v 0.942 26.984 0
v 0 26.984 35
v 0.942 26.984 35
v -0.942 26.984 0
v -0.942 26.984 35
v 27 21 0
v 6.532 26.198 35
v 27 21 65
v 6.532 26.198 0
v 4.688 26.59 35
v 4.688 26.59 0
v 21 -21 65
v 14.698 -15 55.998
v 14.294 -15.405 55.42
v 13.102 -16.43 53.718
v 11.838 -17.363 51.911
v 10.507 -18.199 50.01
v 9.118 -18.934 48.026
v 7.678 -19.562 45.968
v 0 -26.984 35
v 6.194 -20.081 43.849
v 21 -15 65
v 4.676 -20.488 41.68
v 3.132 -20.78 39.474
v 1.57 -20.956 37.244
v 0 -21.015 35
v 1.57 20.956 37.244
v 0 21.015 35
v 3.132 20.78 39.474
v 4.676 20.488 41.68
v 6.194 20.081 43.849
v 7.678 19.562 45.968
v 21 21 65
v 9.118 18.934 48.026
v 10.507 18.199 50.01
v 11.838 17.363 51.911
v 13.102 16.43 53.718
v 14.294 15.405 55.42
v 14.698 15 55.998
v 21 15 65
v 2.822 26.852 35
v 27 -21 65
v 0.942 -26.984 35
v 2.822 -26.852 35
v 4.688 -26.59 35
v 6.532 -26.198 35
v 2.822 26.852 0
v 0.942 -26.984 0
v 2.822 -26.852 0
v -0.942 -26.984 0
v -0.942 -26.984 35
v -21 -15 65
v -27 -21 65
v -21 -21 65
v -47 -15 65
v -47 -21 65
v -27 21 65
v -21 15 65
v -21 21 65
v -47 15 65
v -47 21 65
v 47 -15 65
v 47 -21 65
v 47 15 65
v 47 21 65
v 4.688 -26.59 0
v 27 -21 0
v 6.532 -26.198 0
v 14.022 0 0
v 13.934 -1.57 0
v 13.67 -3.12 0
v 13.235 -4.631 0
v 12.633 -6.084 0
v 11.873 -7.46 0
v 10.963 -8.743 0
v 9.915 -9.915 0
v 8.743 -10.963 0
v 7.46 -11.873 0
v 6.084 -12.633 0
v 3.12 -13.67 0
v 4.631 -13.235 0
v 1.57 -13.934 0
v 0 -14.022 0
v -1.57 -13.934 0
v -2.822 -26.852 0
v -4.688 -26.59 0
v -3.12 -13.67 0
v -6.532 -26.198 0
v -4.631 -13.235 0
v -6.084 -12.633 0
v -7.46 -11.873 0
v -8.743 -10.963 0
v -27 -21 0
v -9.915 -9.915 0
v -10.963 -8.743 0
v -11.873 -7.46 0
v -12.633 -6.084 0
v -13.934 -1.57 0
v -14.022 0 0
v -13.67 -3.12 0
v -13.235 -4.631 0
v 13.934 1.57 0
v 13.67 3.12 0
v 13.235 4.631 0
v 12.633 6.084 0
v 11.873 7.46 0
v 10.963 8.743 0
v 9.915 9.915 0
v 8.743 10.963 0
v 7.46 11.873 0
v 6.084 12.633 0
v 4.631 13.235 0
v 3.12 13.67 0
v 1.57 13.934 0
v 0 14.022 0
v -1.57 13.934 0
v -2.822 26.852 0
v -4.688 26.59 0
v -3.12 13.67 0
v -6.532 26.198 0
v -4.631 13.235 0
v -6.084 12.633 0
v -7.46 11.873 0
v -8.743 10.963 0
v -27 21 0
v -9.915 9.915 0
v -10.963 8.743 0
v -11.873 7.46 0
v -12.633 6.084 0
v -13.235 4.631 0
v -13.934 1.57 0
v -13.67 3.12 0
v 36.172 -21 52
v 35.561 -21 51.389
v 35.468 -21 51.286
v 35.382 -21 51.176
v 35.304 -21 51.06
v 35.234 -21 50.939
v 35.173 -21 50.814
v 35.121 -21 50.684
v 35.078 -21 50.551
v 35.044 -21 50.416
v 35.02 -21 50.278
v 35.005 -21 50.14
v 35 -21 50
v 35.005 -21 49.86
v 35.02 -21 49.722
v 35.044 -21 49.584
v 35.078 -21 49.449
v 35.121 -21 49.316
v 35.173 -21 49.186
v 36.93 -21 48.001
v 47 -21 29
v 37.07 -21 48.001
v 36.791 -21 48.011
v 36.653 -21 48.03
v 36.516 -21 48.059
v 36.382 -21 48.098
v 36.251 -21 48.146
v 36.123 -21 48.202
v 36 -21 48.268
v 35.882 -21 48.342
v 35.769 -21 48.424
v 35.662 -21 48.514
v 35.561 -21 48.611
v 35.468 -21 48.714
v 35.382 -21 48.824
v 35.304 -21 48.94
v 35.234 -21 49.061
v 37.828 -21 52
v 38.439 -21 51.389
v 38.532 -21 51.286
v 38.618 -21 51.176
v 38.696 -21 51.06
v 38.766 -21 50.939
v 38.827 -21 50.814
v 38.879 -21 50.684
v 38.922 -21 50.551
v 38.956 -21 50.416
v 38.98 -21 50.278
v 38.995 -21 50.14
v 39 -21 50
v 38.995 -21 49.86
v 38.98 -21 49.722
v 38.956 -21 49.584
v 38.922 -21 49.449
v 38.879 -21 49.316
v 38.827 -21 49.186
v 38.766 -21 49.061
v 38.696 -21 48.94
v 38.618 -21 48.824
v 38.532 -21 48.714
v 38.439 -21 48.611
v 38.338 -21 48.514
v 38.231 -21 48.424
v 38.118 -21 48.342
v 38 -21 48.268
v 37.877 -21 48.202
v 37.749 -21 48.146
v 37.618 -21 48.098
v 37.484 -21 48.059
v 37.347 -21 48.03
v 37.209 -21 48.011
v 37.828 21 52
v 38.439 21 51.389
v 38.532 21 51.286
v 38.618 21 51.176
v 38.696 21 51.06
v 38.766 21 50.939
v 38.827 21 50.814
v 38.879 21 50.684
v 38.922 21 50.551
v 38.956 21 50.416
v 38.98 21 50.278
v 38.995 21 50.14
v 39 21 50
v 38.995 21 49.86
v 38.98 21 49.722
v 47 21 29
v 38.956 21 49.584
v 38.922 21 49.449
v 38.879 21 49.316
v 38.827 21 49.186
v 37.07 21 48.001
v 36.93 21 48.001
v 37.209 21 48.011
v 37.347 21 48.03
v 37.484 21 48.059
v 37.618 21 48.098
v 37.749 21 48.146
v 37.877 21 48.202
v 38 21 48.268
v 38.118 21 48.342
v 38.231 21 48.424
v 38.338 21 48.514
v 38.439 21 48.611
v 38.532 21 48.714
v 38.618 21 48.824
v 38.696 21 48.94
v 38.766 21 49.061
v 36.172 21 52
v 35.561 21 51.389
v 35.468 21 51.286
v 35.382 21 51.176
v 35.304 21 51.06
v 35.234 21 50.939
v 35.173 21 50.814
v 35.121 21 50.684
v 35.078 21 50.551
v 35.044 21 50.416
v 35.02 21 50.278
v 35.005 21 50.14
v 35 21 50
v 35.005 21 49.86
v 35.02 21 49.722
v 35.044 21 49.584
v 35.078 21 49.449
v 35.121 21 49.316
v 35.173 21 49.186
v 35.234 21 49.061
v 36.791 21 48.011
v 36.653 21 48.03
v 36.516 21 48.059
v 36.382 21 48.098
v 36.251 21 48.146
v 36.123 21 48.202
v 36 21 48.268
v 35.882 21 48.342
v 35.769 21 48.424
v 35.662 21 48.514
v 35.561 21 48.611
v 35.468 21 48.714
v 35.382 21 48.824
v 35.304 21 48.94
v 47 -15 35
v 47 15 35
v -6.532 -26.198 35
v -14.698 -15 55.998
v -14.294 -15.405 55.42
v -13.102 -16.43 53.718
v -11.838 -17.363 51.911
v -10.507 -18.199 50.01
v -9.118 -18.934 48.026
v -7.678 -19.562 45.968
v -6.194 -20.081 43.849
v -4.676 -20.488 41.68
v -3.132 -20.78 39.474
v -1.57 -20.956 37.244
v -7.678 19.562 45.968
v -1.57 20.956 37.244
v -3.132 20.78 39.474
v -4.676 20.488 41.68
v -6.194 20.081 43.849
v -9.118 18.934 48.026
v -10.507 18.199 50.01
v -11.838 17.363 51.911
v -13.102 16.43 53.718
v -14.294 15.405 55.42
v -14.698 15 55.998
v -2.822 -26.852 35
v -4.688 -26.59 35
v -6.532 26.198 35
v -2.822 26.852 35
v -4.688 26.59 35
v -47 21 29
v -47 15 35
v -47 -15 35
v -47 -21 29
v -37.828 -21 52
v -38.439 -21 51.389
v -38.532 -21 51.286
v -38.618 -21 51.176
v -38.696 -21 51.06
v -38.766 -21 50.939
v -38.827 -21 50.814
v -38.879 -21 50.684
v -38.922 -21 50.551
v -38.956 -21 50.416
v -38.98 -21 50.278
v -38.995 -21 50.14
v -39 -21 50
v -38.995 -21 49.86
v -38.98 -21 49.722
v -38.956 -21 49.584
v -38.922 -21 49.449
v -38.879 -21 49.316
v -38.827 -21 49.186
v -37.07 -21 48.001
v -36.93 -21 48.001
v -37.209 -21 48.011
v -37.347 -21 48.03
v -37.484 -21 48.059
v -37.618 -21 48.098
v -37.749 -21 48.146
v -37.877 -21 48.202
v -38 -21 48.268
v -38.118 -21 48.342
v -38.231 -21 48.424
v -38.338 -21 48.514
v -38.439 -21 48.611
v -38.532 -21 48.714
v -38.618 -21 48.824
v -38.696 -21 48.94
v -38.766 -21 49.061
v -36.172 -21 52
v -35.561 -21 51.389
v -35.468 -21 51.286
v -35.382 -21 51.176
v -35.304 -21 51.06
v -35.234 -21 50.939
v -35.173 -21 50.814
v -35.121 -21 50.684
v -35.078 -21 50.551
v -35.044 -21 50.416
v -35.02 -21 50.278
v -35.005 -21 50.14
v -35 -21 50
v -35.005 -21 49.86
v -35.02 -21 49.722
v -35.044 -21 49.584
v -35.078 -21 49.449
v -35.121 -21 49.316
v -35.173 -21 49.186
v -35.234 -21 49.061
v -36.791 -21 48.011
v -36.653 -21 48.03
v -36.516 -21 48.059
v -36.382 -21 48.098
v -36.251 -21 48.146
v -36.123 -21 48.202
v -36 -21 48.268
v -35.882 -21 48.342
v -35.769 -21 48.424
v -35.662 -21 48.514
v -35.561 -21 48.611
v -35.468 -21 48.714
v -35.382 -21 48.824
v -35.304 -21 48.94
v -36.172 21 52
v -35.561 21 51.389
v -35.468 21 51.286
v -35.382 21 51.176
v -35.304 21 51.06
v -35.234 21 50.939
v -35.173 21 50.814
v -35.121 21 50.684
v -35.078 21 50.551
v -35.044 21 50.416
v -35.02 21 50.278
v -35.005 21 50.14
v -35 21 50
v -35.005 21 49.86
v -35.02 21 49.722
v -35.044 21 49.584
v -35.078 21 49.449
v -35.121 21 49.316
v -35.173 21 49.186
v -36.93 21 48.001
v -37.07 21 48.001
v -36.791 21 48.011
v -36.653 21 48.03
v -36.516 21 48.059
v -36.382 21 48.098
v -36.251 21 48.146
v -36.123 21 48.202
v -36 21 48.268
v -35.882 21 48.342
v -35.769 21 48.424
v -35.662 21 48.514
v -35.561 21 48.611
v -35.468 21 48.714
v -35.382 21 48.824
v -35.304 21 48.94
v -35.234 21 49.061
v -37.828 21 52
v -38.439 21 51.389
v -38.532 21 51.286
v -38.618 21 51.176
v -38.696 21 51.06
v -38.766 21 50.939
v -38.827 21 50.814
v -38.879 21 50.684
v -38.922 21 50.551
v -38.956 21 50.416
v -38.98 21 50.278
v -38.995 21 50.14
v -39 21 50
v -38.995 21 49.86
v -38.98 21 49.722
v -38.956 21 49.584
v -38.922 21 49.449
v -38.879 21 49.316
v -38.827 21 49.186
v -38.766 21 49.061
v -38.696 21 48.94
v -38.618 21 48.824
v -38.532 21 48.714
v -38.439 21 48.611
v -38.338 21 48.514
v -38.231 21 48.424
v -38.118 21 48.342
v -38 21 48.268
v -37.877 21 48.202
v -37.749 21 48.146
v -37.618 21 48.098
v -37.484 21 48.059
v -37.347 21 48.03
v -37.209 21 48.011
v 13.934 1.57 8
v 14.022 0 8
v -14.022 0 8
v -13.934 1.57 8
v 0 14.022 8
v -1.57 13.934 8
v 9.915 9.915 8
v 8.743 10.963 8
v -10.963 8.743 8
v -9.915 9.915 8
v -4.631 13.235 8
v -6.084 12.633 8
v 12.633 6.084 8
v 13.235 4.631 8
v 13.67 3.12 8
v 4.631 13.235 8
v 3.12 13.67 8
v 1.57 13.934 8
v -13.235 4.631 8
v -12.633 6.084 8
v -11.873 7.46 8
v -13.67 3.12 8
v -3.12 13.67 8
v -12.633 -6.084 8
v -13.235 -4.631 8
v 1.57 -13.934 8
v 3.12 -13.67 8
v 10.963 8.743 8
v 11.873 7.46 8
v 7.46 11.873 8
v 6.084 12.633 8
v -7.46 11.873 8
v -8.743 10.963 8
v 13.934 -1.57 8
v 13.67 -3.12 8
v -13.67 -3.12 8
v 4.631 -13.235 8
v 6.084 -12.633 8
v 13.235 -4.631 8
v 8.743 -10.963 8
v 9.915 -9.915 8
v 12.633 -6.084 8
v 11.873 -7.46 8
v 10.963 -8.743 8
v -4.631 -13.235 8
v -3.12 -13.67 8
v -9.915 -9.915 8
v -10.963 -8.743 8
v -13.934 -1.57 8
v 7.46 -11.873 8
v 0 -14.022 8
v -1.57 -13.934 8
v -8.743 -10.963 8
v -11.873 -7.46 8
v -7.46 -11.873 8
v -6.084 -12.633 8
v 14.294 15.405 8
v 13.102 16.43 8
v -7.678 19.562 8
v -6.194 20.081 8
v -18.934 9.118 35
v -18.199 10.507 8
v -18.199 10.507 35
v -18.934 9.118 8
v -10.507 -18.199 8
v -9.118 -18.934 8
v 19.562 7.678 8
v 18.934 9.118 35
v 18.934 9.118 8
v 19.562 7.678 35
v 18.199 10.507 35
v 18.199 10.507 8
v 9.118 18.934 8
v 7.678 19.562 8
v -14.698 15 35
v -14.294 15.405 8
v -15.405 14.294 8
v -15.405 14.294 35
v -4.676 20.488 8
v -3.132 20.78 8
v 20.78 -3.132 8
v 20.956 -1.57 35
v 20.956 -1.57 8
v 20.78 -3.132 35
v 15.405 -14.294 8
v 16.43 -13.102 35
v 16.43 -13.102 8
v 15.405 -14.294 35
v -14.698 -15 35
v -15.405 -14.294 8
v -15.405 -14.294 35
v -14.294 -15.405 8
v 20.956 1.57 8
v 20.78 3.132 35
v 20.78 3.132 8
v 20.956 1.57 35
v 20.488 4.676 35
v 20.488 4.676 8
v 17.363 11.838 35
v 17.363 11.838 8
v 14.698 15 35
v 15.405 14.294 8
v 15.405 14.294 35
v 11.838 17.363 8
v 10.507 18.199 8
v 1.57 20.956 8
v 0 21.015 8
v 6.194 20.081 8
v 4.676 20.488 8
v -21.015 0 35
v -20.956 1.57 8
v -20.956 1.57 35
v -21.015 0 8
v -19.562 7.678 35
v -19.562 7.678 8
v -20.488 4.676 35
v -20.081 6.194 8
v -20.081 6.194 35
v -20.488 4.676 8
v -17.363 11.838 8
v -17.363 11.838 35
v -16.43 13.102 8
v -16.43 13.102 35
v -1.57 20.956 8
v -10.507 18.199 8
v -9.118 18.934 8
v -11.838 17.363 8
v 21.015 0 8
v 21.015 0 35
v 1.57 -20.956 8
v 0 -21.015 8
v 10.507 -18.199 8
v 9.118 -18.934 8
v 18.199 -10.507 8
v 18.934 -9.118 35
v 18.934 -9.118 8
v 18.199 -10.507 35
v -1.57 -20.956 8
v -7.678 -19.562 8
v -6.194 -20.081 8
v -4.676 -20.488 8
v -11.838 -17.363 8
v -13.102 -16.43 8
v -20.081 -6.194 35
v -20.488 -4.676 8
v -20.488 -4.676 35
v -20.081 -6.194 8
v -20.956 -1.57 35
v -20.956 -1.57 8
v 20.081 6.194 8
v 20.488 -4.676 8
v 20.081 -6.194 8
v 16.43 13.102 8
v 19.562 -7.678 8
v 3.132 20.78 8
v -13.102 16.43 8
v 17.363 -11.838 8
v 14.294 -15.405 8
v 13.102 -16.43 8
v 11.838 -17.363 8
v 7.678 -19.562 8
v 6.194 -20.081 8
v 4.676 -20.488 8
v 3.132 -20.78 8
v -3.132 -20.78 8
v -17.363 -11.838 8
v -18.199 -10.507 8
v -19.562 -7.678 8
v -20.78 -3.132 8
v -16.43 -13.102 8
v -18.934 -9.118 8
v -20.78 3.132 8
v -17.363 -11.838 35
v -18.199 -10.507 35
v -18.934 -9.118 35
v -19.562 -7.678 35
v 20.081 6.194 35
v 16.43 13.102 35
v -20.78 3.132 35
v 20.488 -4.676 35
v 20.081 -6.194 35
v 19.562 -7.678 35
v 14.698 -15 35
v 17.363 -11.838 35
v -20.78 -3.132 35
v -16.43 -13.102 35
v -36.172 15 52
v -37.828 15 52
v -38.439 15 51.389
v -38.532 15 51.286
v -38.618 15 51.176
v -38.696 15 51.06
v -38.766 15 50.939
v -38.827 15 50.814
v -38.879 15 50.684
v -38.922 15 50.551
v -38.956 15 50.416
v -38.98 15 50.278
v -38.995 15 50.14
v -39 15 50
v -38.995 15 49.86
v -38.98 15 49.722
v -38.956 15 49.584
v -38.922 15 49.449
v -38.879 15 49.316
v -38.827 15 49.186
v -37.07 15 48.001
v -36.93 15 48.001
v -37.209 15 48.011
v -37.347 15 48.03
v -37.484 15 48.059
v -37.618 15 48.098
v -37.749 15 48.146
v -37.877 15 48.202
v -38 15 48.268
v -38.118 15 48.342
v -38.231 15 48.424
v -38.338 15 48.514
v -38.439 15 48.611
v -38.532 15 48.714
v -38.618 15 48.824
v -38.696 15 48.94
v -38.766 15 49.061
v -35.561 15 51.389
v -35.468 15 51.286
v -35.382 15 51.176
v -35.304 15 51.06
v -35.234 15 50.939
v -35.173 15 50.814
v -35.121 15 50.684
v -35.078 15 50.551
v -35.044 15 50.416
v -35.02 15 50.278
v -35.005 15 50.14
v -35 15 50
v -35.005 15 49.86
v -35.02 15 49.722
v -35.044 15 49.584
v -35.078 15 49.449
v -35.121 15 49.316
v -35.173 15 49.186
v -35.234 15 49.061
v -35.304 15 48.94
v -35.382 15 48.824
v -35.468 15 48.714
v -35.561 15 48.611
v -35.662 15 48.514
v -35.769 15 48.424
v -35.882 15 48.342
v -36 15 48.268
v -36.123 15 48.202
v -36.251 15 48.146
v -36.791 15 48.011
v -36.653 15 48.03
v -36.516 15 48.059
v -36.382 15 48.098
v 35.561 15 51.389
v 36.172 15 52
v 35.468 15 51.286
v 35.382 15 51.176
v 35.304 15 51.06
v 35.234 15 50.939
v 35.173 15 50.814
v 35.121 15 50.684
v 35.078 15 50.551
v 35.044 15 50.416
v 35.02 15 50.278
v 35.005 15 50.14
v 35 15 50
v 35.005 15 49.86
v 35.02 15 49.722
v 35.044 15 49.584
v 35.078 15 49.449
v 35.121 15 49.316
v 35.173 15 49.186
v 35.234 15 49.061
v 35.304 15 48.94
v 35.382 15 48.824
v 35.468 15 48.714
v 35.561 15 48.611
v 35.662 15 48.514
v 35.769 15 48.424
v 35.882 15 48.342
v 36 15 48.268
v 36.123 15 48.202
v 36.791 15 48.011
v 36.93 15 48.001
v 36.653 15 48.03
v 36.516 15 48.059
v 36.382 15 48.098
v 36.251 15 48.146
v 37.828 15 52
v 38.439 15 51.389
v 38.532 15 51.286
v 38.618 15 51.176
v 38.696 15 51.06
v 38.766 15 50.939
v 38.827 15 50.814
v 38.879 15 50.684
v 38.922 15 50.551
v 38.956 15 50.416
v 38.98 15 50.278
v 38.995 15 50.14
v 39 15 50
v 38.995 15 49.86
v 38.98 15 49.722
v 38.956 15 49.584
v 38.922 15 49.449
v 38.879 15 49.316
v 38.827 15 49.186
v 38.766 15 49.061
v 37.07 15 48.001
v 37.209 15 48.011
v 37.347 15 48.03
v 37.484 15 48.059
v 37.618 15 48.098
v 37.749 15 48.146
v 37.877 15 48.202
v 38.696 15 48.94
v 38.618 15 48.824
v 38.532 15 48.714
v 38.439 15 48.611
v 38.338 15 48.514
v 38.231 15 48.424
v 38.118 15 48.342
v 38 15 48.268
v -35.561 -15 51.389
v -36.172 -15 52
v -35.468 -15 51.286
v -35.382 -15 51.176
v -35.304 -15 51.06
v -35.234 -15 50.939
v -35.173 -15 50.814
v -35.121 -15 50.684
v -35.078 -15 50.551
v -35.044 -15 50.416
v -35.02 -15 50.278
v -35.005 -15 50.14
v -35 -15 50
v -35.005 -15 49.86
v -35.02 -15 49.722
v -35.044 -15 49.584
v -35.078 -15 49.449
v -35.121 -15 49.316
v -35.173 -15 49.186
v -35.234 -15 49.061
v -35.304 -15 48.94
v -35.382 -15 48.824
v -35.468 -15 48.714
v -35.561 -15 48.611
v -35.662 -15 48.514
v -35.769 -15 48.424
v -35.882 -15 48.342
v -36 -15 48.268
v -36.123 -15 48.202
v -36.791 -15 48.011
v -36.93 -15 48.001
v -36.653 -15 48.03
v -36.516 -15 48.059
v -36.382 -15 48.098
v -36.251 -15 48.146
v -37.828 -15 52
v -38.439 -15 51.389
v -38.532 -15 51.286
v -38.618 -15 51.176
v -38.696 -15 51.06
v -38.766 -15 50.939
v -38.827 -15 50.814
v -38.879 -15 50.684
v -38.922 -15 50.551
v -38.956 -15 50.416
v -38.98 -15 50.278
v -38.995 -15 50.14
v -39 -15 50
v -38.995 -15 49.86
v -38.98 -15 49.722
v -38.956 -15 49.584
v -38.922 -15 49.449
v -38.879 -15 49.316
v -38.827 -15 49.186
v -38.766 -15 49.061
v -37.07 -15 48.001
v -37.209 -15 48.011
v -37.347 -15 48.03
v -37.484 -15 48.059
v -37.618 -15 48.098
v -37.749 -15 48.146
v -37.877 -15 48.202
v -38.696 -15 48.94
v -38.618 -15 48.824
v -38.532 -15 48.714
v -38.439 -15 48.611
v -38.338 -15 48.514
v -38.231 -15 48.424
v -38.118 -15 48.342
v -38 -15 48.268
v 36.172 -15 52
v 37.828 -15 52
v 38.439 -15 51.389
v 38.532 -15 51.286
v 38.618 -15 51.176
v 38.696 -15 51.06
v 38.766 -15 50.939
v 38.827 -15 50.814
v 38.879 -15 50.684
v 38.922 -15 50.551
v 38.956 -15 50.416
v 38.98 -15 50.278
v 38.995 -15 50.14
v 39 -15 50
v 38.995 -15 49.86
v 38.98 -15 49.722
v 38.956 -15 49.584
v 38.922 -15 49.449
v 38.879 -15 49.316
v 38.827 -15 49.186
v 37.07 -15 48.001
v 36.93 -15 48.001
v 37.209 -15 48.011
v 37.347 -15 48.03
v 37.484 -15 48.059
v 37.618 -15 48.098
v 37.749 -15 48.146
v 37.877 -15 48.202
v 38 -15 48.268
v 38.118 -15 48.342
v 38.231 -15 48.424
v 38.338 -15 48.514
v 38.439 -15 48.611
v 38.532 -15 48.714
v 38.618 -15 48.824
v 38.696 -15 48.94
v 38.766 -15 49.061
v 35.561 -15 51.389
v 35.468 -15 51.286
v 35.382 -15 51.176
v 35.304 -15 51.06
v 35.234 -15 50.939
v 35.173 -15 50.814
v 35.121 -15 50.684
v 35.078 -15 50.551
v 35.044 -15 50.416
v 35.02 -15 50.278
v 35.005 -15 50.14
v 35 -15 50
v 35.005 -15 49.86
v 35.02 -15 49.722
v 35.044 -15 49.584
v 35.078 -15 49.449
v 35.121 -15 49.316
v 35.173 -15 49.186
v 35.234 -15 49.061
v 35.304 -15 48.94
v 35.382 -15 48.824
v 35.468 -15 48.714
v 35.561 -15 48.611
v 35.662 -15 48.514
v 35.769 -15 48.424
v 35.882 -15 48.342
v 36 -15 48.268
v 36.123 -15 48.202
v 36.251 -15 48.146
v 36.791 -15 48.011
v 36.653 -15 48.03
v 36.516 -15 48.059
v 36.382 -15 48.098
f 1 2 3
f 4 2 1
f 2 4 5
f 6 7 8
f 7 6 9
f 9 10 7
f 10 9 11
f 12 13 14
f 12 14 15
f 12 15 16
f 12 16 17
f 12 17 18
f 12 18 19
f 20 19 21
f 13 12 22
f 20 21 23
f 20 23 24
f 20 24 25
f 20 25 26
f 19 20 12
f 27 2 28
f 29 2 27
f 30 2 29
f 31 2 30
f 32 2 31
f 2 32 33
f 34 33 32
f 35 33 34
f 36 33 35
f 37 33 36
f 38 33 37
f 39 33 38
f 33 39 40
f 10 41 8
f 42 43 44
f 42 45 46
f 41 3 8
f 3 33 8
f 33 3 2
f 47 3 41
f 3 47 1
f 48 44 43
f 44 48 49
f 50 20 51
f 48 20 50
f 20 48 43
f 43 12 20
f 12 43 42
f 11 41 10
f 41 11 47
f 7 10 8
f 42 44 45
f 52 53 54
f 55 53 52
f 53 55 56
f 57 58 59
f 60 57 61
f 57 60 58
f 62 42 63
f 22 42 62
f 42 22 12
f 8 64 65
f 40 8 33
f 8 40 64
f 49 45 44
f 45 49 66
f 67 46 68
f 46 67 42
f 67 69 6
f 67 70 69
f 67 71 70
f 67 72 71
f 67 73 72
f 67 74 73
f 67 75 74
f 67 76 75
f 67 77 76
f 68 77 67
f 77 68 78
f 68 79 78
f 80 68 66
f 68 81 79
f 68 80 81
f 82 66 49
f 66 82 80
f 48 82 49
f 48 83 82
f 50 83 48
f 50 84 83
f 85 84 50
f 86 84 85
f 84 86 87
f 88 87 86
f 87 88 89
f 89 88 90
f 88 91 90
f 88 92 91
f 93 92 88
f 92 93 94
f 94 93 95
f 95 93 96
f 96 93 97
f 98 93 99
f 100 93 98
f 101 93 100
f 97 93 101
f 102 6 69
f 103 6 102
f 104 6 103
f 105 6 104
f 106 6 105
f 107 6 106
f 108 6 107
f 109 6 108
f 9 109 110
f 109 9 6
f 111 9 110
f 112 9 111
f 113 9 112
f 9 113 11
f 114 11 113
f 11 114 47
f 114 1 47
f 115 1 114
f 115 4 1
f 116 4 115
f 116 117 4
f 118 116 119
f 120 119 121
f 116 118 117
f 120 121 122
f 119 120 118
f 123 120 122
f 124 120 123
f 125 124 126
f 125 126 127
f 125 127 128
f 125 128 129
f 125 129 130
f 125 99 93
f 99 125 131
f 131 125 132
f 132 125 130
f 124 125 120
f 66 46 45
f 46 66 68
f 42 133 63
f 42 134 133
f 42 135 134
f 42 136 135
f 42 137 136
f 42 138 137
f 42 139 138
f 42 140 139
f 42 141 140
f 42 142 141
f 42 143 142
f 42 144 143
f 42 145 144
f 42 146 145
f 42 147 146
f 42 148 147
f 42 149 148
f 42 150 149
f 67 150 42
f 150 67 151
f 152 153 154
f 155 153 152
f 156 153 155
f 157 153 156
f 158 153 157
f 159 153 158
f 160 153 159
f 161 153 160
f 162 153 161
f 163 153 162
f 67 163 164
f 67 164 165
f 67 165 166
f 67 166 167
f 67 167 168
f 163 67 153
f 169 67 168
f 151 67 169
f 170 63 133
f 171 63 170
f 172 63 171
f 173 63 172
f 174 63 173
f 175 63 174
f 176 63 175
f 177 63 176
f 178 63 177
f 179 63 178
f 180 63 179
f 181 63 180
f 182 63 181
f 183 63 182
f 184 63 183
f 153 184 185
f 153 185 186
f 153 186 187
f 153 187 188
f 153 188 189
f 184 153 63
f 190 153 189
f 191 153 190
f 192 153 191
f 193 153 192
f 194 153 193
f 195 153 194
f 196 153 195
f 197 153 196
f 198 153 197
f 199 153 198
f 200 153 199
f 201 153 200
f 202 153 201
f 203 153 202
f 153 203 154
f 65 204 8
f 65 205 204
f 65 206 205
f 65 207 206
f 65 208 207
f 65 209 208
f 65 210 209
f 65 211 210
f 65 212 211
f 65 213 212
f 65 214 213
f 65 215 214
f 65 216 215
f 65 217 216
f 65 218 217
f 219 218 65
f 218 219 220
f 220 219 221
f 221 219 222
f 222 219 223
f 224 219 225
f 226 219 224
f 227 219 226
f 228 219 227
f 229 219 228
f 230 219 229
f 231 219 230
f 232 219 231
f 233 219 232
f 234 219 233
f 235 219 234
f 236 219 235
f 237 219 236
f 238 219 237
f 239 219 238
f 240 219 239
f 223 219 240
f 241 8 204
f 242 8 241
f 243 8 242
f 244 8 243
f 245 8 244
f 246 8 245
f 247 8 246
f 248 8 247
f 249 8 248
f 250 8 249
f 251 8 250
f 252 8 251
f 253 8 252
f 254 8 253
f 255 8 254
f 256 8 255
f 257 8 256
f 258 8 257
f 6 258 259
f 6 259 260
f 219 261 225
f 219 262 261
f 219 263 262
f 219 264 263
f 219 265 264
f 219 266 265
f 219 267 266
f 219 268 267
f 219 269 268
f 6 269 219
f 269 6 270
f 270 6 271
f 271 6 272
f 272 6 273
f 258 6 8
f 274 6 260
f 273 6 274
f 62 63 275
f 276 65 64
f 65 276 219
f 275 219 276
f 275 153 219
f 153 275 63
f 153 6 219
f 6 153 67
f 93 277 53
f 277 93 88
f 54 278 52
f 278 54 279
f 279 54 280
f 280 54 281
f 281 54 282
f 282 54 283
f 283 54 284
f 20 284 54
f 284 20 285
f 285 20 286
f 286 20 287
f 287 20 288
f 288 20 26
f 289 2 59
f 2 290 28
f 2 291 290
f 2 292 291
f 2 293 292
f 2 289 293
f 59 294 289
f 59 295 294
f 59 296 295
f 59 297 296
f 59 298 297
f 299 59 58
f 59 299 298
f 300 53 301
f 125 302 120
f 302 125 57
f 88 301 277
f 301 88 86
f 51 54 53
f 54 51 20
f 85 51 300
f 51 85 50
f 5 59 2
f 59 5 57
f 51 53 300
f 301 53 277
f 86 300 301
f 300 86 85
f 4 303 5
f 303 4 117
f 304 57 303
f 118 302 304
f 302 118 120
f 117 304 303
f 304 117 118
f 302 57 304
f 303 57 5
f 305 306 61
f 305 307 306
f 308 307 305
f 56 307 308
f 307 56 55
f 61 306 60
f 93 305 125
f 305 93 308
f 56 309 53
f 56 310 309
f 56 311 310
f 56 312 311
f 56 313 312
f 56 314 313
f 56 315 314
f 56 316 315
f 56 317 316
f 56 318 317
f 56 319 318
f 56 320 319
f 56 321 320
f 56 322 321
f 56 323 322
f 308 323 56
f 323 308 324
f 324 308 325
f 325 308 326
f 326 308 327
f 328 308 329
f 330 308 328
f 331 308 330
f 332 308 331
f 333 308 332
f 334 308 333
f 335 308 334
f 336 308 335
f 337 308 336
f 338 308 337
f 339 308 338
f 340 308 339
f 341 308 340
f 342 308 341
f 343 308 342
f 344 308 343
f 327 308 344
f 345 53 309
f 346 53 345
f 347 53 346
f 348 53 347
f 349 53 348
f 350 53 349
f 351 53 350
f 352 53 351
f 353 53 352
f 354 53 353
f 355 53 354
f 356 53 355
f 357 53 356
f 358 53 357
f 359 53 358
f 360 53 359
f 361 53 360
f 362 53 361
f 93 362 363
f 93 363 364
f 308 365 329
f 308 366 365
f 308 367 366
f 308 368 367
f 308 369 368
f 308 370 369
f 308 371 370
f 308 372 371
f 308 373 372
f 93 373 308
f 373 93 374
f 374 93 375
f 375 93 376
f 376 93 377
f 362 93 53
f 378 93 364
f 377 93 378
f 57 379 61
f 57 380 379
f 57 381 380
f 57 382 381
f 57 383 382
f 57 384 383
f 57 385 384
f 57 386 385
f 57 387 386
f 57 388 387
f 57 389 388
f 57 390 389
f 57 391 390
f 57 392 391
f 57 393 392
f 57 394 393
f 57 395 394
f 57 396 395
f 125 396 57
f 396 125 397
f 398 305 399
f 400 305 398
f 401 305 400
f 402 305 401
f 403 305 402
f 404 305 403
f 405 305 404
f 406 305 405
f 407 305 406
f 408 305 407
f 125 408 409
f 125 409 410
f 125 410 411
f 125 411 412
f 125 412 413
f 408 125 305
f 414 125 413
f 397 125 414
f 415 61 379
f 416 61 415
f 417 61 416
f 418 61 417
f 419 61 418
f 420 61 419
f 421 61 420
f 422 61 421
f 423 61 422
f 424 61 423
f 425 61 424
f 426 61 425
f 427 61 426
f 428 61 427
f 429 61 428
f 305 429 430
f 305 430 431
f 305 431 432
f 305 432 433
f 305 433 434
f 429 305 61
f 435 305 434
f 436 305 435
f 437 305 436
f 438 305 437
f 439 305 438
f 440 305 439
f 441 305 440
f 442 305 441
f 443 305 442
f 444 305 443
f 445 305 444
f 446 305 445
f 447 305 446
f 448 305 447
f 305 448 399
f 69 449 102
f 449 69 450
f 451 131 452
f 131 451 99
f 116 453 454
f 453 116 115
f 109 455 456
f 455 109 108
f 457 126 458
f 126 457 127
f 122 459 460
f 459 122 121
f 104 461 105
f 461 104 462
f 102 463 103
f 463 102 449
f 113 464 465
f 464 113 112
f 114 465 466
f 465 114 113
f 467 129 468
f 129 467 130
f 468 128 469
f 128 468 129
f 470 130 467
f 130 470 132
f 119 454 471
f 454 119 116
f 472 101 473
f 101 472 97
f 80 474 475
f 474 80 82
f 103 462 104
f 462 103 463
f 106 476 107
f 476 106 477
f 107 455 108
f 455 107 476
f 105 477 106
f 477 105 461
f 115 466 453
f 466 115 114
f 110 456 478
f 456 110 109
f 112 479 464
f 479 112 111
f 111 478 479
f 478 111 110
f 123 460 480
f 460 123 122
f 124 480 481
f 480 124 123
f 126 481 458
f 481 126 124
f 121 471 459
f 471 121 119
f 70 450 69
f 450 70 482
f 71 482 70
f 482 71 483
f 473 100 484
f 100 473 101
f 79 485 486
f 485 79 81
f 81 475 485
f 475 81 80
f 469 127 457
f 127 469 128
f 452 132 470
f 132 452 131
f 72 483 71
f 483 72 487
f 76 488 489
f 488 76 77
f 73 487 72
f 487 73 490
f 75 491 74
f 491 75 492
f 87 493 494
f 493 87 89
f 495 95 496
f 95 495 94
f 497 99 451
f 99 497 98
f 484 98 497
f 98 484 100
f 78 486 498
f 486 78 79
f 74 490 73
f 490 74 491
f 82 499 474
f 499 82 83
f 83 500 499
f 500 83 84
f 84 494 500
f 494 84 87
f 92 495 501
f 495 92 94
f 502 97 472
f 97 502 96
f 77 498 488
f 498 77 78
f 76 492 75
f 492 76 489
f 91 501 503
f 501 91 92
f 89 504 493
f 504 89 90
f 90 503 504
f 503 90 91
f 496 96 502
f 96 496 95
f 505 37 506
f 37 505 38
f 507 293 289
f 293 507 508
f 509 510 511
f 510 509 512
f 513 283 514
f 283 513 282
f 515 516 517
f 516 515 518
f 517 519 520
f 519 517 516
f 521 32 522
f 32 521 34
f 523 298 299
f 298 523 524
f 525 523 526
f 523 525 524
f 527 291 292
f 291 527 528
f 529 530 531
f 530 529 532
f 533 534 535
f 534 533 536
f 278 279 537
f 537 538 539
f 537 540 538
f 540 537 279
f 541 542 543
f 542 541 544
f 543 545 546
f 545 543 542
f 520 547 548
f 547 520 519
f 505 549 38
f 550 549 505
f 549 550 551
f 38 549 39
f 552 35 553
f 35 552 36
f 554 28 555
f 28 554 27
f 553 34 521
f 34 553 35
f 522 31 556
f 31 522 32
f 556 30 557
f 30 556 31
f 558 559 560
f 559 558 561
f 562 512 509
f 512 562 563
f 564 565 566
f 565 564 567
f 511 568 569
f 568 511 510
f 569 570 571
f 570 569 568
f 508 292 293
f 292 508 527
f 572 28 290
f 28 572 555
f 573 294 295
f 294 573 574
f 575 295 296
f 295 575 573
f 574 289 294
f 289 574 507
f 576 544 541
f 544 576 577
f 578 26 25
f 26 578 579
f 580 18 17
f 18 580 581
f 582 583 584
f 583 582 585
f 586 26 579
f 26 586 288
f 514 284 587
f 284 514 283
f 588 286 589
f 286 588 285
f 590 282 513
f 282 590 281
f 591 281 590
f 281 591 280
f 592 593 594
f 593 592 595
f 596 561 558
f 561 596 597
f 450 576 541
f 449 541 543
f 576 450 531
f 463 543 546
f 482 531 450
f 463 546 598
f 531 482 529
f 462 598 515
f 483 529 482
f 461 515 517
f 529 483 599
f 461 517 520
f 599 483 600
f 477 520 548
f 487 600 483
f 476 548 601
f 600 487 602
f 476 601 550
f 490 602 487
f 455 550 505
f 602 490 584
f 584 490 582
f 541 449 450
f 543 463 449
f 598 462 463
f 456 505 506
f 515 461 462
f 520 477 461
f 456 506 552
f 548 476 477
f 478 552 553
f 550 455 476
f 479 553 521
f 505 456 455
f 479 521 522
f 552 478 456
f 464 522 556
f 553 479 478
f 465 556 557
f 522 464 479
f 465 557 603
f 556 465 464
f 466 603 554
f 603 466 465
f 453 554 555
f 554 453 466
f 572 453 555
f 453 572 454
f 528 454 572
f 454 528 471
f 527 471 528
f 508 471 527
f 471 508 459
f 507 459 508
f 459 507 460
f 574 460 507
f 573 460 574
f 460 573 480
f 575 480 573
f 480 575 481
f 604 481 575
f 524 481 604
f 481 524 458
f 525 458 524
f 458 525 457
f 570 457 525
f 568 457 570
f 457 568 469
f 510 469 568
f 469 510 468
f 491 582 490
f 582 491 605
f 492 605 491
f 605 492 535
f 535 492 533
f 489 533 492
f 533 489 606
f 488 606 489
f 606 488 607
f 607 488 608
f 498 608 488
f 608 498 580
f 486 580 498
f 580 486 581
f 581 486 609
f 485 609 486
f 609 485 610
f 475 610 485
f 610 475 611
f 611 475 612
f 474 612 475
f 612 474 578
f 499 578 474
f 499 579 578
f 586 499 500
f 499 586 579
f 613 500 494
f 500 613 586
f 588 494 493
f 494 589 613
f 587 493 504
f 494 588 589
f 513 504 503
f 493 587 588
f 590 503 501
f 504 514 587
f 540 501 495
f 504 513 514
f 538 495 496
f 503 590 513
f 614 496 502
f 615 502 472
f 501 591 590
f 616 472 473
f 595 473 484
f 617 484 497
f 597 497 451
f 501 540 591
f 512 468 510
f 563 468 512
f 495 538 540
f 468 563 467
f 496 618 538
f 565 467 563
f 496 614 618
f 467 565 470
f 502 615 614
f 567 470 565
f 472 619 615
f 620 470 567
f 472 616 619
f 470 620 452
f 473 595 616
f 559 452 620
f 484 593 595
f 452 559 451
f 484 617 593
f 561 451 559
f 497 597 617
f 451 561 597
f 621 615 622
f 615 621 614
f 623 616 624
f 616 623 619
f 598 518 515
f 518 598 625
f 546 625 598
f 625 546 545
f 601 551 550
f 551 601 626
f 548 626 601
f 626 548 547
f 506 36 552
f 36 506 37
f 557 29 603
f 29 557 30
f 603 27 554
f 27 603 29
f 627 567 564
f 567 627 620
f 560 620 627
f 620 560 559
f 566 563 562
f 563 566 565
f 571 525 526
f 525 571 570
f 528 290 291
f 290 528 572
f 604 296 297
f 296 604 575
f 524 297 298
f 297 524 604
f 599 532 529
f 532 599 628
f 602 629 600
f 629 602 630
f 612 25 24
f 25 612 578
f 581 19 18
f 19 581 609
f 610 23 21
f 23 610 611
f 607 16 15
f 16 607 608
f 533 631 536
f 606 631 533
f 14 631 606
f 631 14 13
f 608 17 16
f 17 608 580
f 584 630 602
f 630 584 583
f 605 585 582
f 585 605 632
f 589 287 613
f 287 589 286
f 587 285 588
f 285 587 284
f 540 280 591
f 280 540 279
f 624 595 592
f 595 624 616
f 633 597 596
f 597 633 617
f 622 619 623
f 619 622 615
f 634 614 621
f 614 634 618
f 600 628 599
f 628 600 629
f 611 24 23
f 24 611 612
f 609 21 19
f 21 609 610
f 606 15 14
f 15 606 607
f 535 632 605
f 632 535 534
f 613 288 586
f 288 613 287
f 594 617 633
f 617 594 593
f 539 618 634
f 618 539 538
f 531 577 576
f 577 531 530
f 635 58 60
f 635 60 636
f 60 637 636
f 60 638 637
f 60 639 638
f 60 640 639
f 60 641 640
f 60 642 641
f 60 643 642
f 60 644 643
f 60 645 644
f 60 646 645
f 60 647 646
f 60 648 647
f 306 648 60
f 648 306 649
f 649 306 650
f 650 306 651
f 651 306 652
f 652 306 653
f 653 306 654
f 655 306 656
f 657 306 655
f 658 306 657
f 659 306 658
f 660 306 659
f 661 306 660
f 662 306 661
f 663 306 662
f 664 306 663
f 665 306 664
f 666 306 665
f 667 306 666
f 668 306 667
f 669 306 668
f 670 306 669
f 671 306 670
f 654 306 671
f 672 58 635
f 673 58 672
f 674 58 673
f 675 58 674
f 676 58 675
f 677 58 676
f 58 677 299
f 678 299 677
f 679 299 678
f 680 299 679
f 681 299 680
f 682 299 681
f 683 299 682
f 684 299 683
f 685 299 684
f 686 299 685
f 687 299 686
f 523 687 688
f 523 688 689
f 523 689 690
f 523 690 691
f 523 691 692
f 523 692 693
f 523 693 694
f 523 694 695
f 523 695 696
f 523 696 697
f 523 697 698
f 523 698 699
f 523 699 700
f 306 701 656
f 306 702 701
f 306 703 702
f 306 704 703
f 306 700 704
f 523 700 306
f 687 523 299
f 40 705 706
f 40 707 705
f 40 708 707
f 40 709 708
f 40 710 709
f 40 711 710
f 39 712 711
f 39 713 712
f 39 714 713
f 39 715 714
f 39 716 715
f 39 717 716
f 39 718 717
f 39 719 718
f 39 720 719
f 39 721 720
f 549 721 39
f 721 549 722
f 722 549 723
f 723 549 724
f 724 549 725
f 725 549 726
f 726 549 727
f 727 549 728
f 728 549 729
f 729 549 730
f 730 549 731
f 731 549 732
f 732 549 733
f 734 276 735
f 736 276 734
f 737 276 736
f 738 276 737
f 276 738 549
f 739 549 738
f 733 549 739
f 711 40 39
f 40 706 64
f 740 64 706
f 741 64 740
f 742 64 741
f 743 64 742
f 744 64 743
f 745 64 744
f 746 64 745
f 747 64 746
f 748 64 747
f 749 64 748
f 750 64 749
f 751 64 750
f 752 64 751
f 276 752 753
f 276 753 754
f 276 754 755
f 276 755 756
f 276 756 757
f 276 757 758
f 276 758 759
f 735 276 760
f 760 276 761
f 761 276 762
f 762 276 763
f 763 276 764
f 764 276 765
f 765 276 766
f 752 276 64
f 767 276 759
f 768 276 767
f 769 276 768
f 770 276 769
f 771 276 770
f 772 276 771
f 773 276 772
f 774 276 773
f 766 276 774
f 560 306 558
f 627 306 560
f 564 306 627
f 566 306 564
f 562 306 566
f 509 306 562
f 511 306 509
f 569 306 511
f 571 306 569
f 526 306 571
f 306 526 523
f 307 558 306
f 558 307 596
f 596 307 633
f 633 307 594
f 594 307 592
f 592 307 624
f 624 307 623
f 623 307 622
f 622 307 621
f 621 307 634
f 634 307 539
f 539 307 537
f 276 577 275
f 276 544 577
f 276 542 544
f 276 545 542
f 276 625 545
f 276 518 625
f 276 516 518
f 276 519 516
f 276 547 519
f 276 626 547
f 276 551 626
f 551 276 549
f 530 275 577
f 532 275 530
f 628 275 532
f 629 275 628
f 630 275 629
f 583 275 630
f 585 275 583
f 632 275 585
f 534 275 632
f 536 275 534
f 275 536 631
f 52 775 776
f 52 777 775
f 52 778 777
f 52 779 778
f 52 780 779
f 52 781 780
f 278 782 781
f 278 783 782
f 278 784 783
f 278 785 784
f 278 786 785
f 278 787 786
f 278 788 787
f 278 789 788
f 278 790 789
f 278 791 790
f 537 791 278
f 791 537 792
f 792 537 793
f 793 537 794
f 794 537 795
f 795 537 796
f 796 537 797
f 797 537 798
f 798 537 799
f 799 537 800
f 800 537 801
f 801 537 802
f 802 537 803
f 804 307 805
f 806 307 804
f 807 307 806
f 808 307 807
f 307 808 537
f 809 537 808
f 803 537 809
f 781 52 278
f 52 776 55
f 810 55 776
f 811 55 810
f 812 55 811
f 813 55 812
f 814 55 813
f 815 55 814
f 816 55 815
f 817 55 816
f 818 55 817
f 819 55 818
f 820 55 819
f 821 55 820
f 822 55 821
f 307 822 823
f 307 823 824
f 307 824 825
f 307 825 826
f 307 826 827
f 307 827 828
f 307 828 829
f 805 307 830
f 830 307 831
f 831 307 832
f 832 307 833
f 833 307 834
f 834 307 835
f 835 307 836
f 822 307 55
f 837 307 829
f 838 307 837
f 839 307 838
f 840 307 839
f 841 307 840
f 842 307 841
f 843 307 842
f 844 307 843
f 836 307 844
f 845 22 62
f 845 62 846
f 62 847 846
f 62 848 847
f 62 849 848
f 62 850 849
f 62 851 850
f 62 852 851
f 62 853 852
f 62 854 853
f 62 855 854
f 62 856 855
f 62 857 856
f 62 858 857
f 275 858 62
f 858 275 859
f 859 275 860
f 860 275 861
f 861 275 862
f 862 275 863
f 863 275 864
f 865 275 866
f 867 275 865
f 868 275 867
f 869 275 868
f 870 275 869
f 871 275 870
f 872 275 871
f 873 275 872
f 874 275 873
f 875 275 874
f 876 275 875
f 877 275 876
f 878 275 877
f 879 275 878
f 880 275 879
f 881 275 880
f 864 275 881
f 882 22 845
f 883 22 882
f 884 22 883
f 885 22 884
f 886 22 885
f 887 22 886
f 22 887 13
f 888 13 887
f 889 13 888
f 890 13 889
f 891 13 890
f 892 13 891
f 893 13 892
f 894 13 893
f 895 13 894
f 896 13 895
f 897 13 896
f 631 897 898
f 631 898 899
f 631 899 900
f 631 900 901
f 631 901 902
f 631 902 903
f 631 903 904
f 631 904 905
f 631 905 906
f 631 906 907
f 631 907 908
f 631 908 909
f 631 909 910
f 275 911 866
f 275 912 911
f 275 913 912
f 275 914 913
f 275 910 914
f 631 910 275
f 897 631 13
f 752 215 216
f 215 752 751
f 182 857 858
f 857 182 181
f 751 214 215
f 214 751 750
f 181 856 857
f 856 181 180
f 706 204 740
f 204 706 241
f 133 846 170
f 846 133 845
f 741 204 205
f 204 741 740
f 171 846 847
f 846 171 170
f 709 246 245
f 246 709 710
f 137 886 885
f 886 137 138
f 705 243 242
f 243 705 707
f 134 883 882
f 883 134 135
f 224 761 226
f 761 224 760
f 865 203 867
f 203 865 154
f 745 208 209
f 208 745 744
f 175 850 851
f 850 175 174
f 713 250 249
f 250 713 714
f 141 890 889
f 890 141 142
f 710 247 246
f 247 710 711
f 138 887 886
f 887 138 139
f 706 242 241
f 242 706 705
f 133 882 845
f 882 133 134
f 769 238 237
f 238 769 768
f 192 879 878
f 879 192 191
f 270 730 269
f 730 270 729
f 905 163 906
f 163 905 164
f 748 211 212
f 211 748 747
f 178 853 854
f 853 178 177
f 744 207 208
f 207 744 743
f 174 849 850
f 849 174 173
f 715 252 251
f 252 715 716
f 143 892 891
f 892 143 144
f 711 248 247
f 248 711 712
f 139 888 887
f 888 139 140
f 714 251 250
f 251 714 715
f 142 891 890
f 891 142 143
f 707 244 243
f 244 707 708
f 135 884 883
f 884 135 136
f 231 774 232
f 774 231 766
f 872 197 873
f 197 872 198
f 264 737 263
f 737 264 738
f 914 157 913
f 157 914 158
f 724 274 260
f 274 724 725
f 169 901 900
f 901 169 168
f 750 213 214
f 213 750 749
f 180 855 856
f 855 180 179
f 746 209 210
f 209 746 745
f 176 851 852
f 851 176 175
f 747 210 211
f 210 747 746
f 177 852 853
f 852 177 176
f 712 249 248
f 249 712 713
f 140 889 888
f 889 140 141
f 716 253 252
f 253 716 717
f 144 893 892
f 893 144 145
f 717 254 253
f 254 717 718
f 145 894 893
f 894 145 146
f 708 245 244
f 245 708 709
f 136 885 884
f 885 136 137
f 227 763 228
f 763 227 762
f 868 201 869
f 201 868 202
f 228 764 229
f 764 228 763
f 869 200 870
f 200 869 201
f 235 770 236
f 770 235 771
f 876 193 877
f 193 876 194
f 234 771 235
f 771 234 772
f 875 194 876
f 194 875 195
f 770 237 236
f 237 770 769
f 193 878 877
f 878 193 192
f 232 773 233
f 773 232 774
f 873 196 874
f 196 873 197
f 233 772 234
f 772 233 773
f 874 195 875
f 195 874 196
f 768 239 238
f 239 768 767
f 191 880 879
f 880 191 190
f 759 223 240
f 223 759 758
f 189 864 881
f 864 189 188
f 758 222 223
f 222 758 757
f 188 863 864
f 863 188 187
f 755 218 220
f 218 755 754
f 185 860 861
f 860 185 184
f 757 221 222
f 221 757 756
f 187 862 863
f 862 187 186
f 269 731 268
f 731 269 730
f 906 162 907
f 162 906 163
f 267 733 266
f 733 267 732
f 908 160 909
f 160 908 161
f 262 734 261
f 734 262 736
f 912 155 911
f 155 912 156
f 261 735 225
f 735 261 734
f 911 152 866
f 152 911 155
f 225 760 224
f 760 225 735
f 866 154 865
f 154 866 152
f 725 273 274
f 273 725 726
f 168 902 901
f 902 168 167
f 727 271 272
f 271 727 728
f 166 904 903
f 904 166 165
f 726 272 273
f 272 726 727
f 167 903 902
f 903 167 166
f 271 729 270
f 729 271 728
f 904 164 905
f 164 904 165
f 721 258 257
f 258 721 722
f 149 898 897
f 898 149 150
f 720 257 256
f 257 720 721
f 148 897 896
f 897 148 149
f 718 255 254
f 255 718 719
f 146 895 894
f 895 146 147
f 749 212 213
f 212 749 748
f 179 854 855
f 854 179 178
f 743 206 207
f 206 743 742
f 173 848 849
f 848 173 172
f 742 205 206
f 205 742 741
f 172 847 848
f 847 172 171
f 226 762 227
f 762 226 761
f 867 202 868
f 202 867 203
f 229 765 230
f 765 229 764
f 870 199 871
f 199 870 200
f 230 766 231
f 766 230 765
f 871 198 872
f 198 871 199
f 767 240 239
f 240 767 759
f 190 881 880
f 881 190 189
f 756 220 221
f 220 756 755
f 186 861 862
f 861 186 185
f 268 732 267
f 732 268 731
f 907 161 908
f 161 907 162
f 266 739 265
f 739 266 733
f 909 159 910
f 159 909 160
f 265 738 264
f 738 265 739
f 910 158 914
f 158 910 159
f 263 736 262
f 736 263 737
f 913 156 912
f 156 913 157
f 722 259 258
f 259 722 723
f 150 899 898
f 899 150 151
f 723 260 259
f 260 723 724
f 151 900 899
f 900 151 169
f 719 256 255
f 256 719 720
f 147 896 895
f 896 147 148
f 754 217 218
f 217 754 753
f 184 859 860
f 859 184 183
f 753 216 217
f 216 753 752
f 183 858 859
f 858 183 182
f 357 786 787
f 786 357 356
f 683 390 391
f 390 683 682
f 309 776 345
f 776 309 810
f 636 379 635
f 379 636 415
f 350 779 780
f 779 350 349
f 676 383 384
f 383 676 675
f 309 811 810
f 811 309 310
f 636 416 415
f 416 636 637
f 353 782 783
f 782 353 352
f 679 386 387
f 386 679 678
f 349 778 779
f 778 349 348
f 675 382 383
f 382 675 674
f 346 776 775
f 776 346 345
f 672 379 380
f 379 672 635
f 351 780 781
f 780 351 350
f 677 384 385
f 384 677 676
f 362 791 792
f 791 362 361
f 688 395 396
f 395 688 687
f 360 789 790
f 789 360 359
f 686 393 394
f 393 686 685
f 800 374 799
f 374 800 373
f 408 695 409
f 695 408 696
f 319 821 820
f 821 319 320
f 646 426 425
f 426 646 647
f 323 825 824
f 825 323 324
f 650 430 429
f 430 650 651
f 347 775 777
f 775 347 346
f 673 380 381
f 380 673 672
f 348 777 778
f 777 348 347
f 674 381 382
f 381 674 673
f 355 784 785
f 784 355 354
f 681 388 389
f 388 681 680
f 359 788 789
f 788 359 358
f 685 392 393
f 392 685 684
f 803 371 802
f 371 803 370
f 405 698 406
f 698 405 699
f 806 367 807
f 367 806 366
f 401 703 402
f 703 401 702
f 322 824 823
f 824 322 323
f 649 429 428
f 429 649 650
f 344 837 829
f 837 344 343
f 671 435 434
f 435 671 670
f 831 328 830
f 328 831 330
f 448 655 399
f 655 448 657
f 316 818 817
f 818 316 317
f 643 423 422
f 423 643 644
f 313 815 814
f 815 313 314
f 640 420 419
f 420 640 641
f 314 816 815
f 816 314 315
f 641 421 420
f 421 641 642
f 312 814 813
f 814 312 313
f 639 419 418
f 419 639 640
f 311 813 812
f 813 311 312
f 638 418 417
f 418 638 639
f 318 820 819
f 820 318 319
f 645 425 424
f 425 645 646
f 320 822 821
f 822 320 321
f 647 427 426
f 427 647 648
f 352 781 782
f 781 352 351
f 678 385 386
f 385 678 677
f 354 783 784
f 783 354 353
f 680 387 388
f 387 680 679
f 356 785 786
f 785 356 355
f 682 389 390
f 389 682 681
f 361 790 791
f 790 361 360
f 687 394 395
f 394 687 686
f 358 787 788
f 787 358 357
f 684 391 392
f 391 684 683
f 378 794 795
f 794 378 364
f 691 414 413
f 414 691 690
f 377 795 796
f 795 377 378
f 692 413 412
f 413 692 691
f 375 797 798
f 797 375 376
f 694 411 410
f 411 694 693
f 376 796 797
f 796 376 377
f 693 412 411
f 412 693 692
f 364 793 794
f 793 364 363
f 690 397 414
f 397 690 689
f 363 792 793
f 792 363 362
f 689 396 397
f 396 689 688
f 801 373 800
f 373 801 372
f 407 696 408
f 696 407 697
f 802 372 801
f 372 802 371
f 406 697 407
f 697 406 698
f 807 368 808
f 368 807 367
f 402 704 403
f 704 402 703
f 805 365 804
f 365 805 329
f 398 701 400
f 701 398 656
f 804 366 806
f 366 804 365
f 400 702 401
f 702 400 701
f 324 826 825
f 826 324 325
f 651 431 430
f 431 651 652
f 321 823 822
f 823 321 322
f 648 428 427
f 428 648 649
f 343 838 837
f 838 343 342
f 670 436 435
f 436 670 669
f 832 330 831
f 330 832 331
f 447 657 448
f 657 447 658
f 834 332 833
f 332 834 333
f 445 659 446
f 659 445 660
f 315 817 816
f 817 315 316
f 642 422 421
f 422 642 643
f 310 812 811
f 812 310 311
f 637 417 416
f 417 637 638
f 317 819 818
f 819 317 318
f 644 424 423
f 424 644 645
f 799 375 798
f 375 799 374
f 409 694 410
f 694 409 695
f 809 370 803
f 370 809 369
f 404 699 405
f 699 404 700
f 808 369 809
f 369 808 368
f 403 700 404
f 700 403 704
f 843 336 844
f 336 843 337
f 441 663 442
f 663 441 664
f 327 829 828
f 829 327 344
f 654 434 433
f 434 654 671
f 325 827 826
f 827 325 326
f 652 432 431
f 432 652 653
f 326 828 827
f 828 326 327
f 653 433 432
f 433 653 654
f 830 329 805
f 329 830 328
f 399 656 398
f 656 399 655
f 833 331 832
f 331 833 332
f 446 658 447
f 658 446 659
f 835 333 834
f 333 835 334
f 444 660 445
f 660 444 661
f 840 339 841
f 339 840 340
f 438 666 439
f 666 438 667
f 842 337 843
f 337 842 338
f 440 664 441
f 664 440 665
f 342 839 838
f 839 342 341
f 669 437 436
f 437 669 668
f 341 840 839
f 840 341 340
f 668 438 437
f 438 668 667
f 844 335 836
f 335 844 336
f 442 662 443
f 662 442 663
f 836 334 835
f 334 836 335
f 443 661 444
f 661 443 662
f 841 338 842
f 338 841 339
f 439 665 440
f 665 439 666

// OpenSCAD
// file: trunctear.scad
//A module for truncated tear drops.

trunctear(1, 0.5, $fn = 90);

module trunctear(hei, radian, cent = false)
{
    linear_extrude(height = hei, center = cent)
        hull()
        {
            circle(r = radian);
            translate([0, radian/2])
                square([2*(radian*(2*cos(45)-1)), radian], center = true);
        }
}
// file: polyhole.scad
// The Cylinder is dead! Long live the Cylinder!
// A module for a polyhole by radius, based on Nophead's work.

module polyhole(h, r, cent = false)
{
    n = max(round(4 * r), 3);
    cylinder(h = h, r = r / cos(180 / n), $fn = n, center = cent);
}
// main file
//Mount for the lead screw bearing

use<polyhole.scad>
use<trunctear.scad>

TaperedMount();

module TaperedMount()
{
    difference()
    {
        union()
        {
            hull()
            {
                difference()
                {
                    hull()
                    {
                        cylinder(h = 8+14.25+(24-14.25)+3, r = 21+6, $fn = 90);
                        translate([(21+6)/2, 0, (8+14.25+(24-14.25)+3)/2])
                            cube([(21+6), 30+12, 8+14.25+(24-14.25)+3], center = true);
                    }
                    translate([-50, 0, 50])
                        cube([100, 100, 100], center = true);
                }
                translate([21+6-3, 0, 8+14.25+(24-14.25)+3+18-6])
                    cube([6, 30+12, 36], center = true);
            }
            hull()
            {
                translate([(21+6)/2, 0, (8+14.25+(24-14.25)+3)/2])
                    cube([(21+6), 30+12, 8+14.25+(24-14.25)+3], center = true);
                translate([21+6+10, 0, 8+14.25+(24-14.25)+3+18-6])
                    cube([20, 30+12, 36], center = true);
            }
            hull()
            {
                difference()
                {
                    hull()
                    {
                        cylinder(h = 8+14.25+(24-14.25)+3, r = 21+6, $fn = 90);
                        translate([-(21+6)/2, 0, (8+14.25+(24-14.25)+3)/2])
                            cube([(21+6), 30+12, 8+14.25+(24-14.25)+3], center = true);
                    }
                    translate([50, 0, 50])
                        cube([100, 100, 100], center = true);
                }
                translate([-(21+6-3), 0, 8+14.25+(24-14.25)+3+18-6])
                    cube([6, 30+12, 36], center = true);
            }
            hull()
            {
                translate([-(21+6)/2, 0, (8+14.25+(24-14.25)+3)/2])
                    cube([(21+6), 30+12, 8+14.25+(24-14.25)+3], center = true);
                translate([-(21+6+10), 0, 8+14.25+(24-14.25)+3+18-6])
                    cube([20, 30+12, 36], center = true);
            }
        }
        polyhole(100, 14);
        translate([0, 0, 8])
            polyhole(100, 21);
        translate([0, 0, 8+14.25+(24-14.25)+3+15])
            cube([100, 30, 30], center = true);
        translate([21+6+10, 50, 8+14.25+(24-14.25)+3+15])
            rotate([90, 0, 0])
                trunctear(100, 2, $fn = 90);
        translate([-(21+6+10), 50, 8+14.25+(24-14.25)+3+15])
            rotate([90, 0, 0])
                trunctear(100, 2, $fn = 90);
    }
}
